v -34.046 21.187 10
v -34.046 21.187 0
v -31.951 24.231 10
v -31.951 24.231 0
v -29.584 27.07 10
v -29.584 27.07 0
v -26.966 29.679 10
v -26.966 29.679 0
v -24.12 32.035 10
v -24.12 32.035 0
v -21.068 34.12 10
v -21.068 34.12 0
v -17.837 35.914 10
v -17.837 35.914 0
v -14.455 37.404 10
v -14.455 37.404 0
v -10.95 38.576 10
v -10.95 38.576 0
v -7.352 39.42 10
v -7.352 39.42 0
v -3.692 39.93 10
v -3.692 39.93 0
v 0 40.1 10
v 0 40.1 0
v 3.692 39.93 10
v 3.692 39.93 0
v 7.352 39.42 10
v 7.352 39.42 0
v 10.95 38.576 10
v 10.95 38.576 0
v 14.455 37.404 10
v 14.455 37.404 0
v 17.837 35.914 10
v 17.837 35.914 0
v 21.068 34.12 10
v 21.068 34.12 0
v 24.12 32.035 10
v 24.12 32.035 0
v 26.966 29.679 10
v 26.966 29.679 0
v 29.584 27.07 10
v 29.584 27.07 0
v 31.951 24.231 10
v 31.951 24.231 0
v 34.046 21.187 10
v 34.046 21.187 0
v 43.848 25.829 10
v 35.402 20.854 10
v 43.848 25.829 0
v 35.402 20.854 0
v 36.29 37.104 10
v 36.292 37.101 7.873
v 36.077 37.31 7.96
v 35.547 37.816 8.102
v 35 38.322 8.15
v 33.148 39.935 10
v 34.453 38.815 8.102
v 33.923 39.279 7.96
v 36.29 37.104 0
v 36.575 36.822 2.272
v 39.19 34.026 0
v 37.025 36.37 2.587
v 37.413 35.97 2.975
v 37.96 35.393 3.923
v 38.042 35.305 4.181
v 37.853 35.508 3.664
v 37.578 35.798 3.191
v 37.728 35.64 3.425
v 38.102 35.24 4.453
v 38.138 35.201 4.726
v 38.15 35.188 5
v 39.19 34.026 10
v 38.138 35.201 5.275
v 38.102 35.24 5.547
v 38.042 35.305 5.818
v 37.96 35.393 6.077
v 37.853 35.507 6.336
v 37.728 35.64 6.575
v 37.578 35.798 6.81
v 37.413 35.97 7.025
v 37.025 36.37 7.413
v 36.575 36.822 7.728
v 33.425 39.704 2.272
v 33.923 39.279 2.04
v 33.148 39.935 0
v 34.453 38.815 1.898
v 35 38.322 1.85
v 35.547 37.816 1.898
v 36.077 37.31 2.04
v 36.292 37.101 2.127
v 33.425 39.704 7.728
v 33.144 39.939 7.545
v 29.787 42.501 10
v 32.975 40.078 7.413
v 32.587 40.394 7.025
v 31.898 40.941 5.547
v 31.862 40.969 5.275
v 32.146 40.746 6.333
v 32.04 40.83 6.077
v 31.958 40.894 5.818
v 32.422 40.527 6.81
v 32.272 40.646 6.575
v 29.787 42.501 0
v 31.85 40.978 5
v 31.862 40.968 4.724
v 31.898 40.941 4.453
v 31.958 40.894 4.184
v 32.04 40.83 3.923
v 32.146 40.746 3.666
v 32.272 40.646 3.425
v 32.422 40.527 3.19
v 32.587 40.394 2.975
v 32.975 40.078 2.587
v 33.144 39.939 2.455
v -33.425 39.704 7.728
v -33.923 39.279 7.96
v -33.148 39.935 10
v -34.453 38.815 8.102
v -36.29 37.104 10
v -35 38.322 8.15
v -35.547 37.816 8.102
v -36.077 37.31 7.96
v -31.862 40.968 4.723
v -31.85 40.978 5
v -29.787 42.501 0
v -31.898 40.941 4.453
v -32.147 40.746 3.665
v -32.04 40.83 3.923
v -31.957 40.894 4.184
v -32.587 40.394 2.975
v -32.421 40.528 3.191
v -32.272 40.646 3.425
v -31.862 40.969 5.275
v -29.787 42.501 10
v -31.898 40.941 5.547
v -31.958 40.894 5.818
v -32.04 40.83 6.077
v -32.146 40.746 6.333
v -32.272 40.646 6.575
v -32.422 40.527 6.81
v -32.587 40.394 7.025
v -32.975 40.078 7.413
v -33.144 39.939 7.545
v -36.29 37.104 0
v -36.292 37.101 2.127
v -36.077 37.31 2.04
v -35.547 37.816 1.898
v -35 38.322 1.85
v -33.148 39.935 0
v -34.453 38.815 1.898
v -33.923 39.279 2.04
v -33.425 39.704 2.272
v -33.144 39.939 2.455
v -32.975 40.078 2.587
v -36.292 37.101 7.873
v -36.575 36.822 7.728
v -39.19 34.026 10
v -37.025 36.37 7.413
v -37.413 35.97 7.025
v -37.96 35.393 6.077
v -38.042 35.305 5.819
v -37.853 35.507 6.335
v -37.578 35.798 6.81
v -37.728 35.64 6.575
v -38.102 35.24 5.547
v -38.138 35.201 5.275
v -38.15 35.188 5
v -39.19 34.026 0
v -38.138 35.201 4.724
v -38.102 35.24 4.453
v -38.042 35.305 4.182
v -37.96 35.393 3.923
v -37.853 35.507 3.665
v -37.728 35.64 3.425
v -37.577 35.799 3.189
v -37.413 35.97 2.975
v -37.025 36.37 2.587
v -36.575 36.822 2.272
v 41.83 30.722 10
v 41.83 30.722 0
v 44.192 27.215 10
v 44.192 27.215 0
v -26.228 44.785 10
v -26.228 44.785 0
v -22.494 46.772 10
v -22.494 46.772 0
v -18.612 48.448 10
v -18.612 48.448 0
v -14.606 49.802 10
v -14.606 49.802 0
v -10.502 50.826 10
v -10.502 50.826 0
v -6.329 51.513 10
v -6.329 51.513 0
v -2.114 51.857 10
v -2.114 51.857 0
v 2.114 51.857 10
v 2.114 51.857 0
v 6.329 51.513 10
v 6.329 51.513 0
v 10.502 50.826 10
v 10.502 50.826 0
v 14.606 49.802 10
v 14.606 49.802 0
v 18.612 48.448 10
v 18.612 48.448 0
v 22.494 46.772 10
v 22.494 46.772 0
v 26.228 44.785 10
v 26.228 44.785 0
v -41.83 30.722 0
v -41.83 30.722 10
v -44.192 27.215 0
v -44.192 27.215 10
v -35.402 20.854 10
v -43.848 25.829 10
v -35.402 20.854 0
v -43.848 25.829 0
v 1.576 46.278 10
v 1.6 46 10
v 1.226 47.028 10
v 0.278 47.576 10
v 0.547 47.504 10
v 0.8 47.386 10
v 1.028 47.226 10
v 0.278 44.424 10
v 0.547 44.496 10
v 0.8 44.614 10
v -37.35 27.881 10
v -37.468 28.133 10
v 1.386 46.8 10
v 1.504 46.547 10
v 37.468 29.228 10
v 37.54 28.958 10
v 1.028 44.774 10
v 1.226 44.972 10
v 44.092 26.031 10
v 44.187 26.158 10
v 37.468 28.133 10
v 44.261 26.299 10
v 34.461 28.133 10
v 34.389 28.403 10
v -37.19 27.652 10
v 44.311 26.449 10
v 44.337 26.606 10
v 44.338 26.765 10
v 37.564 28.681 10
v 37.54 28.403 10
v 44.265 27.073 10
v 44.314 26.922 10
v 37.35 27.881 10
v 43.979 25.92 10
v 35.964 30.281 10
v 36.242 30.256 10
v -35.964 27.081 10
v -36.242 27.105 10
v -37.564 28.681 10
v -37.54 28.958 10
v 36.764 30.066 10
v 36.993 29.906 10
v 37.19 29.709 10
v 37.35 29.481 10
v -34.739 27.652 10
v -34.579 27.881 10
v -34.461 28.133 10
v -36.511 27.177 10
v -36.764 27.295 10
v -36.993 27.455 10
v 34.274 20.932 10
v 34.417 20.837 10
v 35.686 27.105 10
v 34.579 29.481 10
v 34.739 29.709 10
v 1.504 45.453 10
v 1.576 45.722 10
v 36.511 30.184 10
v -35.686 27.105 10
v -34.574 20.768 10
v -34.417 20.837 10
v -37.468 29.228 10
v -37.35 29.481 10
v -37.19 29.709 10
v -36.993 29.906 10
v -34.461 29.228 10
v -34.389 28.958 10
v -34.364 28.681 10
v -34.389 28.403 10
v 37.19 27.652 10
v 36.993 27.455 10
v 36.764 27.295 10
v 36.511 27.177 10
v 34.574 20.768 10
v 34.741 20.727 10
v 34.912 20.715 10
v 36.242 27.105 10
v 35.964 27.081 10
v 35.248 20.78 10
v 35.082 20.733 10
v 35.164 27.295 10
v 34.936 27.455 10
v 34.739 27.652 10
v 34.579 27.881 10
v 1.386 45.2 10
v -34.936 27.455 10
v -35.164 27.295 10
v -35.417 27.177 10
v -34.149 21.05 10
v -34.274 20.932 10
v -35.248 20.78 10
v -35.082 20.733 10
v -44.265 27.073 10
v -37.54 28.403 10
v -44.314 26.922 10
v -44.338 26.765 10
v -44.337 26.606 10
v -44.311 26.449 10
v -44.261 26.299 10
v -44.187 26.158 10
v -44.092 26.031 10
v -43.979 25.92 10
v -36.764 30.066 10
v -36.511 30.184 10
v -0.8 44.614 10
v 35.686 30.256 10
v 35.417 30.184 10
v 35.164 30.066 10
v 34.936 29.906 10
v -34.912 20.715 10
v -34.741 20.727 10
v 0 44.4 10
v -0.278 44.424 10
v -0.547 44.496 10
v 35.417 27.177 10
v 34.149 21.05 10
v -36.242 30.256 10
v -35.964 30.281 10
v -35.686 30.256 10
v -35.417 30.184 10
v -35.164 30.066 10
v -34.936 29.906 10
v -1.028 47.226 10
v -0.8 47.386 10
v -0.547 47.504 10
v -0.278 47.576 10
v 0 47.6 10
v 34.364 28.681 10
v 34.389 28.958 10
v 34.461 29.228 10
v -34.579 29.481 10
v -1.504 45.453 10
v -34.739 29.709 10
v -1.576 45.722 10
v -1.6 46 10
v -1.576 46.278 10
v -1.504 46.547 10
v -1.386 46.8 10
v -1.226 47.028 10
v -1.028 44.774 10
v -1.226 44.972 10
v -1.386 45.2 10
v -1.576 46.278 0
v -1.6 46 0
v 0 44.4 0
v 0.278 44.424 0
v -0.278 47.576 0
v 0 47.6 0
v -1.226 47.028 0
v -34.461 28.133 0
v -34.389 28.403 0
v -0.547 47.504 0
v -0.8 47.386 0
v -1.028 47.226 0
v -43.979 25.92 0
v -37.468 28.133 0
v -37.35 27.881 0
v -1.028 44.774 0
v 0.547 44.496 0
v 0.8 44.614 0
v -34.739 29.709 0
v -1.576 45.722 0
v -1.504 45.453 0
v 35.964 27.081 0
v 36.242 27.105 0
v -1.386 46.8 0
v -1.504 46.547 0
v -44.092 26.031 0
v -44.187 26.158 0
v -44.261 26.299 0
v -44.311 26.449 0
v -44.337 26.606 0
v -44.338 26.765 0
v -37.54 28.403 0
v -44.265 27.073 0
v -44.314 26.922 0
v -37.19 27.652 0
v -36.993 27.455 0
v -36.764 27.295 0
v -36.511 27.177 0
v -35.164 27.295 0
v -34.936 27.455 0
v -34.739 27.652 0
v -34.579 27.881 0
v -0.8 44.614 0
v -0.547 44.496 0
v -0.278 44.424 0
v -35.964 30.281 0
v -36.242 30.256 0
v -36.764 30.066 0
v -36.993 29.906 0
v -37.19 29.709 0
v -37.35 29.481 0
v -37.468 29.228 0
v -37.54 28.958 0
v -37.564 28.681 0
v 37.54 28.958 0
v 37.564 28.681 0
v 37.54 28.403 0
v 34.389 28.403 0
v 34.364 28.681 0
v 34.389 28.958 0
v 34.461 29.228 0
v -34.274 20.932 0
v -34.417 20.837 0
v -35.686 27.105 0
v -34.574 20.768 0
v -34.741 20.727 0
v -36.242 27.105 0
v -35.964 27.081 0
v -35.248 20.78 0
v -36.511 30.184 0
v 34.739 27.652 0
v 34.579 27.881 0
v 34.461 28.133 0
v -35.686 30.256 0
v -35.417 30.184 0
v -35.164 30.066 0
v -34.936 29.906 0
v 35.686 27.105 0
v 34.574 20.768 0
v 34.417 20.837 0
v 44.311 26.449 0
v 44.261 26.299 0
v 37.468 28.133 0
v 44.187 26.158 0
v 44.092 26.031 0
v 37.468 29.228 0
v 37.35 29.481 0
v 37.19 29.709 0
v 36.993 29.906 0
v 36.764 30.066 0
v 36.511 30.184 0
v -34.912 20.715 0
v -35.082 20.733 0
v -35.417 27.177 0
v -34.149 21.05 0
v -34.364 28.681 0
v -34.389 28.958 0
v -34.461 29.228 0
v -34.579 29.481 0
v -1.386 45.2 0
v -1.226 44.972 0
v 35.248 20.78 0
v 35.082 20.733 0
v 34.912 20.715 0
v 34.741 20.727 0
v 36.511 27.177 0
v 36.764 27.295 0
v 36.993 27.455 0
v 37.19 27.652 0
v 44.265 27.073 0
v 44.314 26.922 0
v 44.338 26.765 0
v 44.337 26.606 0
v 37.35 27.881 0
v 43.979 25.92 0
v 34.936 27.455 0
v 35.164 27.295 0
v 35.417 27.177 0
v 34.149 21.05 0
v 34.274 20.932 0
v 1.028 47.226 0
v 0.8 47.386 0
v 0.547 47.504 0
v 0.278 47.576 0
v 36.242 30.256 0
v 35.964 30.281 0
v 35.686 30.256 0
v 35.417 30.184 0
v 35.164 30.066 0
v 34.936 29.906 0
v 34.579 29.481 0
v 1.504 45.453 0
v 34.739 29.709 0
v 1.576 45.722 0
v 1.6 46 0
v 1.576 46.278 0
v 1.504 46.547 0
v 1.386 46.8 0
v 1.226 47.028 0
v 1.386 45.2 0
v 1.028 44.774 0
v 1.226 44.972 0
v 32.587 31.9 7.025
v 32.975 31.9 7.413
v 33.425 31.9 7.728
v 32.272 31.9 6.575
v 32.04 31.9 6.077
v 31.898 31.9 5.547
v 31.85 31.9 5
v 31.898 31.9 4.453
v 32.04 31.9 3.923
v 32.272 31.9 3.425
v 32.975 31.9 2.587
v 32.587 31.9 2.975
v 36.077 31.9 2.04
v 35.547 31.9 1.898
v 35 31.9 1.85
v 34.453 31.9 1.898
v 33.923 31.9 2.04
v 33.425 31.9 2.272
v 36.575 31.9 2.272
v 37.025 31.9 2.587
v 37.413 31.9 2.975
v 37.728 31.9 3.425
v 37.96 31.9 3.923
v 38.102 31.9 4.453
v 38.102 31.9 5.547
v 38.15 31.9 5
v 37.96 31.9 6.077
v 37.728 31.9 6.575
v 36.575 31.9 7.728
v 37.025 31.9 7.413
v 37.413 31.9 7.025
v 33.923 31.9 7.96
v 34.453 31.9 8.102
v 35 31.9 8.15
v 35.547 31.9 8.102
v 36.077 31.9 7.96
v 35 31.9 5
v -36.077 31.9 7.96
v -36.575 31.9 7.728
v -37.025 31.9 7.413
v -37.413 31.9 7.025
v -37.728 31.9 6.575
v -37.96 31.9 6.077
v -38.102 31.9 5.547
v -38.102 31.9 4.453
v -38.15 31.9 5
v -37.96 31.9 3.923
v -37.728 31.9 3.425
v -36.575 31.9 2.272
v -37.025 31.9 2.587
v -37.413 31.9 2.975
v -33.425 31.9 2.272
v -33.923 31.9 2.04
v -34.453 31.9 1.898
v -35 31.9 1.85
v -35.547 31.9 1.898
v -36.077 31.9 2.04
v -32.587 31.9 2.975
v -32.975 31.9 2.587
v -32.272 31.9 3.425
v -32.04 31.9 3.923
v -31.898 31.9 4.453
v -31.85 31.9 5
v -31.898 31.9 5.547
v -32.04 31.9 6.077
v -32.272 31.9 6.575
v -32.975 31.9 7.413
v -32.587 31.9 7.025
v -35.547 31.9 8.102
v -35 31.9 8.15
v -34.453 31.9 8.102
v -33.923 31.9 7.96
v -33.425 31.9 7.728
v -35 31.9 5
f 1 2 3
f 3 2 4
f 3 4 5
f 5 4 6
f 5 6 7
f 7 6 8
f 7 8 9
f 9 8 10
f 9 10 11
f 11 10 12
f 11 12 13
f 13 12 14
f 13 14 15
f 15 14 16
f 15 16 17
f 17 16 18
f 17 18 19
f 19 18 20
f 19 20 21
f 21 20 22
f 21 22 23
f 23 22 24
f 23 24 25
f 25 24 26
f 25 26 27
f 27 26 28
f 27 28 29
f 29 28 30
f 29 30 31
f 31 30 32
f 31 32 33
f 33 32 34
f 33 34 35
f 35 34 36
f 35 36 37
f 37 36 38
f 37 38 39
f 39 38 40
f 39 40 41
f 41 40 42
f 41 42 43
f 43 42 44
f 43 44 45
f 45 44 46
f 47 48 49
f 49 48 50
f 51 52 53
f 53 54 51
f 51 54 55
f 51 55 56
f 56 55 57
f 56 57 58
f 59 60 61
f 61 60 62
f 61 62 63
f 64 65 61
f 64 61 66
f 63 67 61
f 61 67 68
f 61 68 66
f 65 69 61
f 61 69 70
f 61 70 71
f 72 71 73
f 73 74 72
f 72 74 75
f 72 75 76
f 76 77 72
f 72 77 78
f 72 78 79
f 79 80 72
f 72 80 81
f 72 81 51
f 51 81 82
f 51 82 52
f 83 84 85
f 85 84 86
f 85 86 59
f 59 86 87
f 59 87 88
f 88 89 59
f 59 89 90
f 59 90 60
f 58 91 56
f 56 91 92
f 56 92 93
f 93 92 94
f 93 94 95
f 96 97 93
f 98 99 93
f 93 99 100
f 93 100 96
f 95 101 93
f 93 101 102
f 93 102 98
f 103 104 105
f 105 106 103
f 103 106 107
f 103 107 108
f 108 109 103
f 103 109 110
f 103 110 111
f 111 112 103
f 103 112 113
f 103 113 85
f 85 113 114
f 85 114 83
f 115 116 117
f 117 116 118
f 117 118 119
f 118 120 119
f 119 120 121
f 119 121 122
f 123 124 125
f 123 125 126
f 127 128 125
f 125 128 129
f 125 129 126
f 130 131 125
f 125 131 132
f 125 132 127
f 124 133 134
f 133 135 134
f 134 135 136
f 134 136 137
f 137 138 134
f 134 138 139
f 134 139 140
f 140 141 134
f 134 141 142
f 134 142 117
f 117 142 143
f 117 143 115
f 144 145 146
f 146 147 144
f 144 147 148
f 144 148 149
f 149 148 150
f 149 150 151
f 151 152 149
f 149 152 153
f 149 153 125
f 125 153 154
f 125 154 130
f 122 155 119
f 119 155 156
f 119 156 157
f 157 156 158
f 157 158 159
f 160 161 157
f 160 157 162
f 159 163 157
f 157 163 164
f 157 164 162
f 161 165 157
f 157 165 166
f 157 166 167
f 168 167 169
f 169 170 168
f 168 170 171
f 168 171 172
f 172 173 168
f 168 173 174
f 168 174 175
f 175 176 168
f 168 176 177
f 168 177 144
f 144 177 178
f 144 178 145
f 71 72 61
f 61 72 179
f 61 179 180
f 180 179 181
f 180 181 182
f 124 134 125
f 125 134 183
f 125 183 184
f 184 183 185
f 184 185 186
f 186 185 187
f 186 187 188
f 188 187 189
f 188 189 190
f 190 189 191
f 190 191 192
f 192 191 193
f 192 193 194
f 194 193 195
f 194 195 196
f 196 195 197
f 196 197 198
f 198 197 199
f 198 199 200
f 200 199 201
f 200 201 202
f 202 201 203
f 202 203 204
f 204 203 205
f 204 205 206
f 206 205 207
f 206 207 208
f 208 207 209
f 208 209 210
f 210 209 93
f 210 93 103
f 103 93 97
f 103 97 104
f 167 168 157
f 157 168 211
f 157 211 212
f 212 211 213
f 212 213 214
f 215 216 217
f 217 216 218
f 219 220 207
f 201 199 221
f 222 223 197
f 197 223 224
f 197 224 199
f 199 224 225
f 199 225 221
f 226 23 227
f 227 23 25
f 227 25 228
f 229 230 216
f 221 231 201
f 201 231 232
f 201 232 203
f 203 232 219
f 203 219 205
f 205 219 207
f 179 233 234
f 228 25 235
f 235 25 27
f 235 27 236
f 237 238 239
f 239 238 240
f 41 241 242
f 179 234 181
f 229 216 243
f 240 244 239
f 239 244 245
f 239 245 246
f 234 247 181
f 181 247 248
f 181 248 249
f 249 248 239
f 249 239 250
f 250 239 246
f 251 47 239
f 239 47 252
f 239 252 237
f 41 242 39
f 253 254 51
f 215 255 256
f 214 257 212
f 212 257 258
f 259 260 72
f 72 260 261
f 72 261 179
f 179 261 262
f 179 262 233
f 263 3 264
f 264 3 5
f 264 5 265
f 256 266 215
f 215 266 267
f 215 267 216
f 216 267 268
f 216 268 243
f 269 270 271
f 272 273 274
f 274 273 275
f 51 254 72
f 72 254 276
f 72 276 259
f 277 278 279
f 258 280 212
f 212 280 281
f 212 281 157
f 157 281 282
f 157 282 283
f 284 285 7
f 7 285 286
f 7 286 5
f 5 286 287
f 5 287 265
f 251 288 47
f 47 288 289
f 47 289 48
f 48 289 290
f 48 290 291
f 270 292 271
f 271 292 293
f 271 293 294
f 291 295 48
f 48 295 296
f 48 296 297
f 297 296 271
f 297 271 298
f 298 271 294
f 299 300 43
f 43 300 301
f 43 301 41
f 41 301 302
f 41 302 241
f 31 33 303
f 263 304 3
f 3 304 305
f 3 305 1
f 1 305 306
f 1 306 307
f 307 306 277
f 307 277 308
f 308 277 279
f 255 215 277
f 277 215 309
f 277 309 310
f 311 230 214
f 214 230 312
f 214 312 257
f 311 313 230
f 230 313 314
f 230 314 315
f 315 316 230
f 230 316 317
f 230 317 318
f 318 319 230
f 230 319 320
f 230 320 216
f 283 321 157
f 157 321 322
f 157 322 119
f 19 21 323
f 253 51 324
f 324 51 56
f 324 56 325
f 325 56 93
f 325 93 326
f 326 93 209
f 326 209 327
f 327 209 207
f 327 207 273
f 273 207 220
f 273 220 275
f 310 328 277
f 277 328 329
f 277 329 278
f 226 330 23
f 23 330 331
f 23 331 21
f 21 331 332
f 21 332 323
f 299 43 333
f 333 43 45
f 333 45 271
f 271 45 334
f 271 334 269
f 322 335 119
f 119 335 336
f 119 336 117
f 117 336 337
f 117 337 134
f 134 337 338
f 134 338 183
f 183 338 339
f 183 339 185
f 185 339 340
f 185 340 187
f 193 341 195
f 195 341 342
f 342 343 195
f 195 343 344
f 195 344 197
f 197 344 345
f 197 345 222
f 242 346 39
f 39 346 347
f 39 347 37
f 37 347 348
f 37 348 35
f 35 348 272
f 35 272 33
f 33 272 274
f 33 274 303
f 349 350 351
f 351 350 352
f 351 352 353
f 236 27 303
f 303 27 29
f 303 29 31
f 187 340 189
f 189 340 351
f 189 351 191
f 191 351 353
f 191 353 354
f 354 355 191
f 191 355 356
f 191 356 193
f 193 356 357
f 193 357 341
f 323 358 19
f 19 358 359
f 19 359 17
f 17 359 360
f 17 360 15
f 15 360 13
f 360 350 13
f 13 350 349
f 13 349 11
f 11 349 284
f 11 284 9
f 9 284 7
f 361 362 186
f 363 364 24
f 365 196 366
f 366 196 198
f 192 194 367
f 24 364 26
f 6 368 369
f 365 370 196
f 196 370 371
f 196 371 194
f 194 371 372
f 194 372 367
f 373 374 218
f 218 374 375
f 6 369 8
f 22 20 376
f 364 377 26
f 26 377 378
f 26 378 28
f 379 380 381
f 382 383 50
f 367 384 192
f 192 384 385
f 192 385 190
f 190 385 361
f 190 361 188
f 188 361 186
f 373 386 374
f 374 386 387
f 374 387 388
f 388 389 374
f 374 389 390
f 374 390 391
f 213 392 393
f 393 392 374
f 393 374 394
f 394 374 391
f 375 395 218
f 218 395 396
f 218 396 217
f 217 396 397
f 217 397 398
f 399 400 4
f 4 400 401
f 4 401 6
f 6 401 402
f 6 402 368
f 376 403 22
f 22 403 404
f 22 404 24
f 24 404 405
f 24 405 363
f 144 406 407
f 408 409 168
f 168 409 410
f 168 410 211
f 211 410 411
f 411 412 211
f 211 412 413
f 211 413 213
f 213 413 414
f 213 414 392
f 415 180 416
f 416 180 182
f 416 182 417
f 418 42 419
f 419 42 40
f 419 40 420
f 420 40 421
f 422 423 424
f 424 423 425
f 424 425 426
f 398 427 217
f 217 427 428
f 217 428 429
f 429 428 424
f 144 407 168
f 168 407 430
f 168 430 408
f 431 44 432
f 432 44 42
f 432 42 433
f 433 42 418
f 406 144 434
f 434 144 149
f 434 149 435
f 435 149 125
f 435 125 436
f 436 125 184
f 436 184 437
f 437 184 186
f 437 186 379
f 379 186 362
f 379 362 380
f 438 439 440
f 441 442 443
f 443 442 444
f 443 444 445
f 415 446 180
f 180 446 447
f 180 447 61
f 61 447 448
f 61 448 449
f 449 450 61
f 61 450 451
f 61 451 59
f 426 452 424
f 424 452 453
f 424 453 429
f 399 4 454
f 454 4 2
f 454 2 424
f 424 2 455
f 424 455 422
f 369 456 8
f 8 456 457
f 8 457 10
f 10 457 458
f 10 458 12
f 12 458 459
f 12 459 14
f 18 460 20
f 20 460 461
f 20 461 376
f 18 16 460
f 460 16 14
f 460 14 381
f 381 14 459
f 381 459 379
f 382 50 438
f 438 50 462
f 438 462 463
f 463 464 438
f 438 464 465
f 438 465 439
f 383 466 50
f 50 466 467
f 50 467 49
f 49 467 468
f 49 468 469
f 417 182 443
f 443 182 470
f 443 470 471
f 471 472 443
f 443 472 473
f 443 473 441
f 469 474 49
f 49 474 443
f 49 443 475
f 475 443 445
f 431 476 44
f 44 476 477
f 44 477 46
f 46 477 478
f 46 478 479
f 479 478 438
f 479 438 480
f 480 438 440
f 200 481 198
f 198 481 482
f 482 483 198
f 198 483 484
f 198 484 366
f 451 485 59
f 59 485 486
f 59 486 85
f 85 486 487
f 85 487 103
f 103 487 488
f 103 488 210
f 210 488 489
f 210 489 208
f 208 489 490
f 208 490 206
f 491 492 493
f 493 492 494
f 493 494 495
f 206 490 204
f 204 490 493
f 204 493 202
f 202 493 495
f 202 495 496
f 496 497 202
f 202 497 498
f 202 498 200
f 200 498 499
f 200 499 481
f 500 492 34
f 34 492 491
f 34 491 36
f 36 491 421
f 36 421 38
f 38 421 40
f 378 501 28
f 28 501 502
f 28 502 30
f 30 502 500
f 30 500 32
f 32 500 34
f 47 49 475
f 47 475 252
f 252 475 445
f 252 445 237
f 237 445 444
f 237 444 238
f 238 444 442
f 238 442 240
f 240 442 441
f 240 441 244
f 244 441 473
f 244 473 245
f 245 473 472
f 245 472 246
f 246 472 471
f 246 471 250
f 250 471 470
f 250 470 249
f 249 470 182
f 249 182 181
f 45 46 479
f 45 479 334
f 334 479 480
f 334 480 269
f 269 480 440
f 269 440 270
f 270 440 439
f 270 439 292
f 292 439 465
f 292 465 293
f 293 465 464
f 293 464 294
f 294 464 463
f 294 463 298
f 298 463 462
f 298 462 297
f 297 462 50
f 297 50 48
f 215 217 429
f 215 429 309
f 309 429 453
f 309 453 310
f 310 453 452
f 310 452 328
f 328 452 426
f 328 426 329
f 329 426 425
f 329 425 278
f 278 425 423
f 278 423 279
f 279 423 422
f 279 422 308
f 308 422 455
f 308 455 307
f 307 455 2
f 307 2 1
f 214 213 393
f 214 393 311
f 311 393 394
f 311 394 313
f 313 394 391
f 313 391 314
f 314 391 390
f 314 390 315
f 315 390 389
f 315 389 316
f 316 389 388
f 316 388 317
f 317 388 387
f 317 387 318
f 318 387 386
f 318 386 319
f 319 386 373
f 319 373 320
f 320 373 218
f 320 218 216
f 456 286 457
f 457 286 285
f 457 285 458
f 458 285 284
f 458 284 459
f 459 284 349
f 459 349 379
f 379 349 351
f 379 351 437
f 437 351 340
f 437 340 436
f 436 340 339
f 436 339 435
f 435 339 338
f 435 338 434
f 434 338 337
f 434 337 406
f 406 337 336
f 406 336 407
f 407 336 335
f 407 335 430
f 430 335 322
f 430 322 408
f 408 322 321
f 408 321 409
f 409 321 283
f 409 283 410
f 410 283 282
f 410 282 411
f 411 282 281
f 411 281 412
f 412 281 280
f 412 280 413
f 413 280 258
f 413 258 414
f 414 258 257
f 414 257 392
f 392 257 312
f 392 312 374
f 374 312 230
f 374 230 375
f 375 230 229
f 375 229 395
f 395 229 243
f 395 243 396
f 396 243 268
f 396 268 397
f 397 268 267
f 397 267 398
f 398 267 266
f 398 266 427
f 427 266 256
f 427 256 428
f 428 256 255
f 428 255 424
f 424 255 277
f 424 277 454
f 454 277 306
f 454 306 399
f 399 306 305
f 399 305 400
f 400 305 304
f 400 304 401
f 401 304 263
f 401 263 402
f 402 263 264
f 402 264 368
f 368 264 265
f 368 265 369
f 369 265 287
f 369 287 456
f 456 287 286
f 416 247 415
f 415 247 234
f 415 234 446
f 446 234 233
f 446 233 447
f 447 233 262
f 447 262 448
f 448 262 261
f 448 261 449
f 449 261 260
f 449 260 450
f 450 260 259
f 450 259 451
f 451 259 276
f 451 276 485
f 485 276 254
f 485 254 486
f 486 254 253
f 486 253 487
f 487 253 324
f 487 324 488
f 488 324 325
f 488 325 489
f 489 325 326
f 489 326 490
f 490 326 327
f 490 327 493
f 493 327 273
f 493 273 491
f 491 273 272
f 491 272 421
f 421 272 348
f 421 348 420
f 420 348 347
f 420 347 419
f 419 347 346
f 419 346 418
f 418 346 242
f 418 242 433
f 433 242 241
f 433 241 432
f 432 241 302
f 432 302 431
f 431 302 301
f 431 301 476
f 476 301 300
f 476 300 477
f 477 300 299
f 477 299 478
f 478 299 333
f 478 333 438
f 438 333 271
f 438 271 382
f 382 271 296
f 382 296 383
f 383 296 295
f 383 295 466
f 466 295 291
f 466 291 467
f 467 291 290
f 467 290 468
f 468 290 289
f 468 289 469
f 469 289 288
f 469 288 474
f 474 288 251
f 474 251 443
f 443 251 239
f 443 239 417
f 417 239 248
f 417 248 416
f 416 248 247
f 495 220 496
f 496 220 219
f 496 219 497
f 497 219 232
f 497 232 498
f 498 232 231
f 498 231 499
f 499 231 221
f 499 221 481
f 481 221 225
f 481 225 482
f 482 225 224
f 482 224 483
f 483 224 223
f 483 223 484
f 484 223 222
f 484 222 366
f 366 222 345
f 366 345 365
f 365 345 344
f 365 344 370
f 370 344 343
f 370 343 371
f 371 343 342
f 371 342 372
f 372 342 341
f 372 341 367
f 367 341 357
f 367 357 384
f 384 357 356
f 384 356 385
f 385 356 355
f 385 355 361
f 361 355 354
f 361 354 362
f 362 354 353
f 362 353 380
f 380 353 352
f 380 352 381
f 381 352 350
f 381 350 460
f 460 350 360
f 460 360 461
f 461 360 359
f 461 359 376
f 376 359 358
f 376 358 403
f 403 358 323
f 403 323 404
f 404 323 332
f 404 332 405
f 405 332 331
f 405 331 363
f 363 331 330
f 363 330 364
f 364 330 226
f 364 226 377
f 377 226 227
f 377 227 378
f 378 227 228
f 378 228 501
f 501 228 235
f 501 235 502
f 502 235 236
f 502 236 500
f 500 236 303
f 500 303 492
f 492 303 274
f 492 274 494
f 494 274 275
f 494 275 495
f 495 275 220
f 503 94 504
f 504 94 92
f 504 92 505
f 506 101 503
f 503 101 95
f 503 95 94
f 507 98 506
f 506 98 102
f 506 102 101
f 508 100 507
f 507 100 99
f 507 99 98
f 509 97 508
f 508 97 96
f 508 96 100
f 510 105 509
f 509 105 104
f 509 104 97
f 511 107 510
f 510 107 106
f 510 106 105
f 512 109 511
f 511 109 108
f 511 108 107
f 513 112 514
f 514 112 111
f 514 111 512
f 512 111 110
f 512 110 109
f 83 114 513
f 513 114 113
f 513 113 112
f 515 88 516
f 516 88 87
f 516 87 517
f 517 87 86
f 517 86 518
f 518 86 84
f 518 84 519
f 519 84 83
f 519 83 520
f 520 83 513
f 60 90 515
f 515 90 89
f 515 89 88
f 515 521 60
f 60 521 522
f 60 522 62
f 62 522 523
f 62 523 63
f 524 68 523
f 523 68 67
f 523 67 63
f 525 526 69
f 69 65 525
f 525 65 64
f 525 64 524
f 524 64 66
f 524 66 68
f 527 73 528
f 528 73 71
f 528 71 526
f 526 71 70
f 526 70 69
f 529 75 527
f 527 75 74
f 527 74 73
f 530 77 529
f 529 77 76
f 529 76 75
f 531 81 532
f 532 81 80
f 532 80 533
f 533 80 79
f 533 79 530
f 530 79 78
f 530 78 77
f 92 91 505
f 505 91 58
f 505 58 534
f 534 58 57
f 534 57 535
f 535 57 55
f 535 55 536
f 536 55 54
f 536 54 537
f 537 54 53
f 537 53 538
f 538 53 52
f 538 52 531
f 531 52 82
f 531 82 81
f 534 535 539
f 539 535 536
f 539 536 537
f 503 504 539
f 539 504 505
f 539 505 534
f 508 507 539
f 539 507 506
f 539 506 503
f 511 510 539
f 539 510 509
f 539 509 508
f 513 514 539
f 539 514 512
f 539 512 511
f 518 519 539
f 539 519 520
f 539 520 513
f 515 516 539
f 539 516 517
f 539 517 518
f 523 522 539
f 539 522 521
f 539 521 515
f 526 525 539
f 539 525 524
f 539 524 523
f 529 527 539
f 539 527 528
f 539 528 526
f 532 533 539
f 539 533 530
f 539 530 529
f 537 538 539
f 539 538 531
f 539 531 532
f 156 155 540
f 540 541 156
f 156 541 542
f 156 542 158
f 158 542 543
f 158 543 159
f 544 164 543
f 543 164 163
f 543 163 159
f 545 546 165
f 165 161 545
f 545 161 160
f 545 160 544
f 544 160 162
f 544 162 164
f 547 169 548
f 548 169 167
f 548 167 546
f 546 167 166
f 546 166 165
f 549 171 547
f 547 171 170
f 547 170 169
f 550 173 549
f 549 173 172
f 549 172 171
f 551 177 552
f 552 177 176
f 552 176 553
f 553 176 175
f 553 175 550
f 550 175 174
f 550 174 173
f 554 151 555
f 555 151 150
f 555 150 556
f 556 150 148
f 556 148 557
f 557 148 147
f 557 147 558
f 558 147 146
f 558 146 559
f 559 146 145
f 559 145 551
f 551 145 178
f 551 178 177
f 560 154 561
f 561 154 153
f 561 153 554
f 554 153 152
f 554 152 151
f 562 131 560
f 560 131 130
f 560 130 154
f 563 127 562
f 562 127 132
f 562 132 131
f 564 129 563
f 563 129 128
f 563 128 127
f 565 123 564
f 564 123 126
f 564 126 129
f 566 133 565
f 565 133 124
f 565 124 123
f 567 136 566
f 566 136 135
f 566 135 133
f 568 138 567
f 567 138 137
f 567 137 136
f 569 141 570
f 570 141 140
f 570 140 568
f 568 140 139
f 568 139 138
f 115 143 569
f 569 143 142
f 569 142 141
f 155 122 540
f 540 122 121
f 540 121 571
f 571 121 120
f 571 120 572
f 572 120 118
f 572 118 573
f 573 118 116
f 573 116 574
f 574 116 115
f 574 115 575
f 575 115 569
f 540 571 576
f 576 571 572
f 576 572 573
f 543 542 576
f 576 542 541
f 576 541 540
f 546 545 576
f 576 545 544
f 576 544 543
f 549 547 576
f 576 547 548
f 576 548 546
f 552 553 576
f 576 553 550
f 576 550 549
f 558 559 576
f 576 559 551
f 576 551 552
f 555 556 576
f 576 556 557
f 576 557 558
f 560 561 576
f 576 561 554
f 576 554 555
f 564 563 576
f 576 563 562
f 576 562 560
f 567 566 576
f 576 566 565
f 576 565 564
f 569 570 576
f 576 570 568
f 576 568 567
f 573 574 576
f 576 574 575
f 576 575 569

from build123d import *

# Parameters (mm, degrees)
AUFSATZ_LINEAR_AUSTRAGEN1_DEPTH = 10
VERRUNDUNG1_R                   = 1
SKIZZE2_R                       = 1.6
SCHNITT_LINEAR_AUSTRAGEN1_DEPTH = 10
SKIZZE3_R                       = 3.15
SCHNITT_LINEAR_AUSTRAGEN2_DEPTH = 20


with BuildPart() as part:
    # Skizze1 → Aufsatz-Linear austragen1 (new body)
    with BuildSketch(Plane.XY):
        with BuildLine():
            Line((-34.551329334, 20.352288355), (-44.718553427, 26.341241038))
            ThreePointArc((-44.718553427, 26.341241038), (0, 51.9), (44.718553427, 26.341241038))
            Line((44.718553427, 26.341241038), (34.551329334, 20.352288355))
            ThreePointArc((34.551329334, 20.352288355), (0, 40.1), (-34.551329334, 20.352288355))
        make_face()
    extrude(amount=AUFSATZ_LINEAR_AUSTRAGEN1_DEPTH)

    # Verrundung1
    verrundung1_edges = [part.edges().sort_by_distance(p)[0] for p in [
        (-34.551329334, 20.352288355, 5),
        (-44.718553427, 26.341241038, 5),
        (44.718553427, 26.341241038, 5),
        (34.551329334, 20.352288355, 5),
    ]]
    fillet(verrundung1_edges, radius=VERRUNDUNG1_R)

    # Skizze2 → Schnitt-Linear austragen1 (cut)
    with BuildSketch(Plane.XY.offset(10)):
        with Locations((0, 46)):
            Circle(SKIZZE2_R)
        with Locations((35.964248194, 28.680530886)):
            Circle(SKIZZE2_R)
        with Locations((-35.964248194, 28.680530886)):
            Circle(SKIZZE2_R)
    extrude(amount=-SCHNITT_LINEAR_AUSTRAGEN1_DEPTH, mode=Mode.SUBTRACT)

    # Skizze3 → Schnitt-Linear austragen2 (cut)
    with BuildSketch(Plane(origin=(0, 51.9, 0), x_dir=(1, 0, 0), z_dir=(0, 1, 0))):
        with Locations(Location((-35, -5, 0), (0, 0, 270))):
            Circle(SKIZZE3_R)
        with Locations(Location((35, -5, 0), (0, 0, 270))):
            Circle(SKIZZE3_R)
    extrude(amount=-SCHNITT_LINEAR_AUSTRAGEN2_DEPTH, mode=Mode.SUBTRACT)


solid = part.part
